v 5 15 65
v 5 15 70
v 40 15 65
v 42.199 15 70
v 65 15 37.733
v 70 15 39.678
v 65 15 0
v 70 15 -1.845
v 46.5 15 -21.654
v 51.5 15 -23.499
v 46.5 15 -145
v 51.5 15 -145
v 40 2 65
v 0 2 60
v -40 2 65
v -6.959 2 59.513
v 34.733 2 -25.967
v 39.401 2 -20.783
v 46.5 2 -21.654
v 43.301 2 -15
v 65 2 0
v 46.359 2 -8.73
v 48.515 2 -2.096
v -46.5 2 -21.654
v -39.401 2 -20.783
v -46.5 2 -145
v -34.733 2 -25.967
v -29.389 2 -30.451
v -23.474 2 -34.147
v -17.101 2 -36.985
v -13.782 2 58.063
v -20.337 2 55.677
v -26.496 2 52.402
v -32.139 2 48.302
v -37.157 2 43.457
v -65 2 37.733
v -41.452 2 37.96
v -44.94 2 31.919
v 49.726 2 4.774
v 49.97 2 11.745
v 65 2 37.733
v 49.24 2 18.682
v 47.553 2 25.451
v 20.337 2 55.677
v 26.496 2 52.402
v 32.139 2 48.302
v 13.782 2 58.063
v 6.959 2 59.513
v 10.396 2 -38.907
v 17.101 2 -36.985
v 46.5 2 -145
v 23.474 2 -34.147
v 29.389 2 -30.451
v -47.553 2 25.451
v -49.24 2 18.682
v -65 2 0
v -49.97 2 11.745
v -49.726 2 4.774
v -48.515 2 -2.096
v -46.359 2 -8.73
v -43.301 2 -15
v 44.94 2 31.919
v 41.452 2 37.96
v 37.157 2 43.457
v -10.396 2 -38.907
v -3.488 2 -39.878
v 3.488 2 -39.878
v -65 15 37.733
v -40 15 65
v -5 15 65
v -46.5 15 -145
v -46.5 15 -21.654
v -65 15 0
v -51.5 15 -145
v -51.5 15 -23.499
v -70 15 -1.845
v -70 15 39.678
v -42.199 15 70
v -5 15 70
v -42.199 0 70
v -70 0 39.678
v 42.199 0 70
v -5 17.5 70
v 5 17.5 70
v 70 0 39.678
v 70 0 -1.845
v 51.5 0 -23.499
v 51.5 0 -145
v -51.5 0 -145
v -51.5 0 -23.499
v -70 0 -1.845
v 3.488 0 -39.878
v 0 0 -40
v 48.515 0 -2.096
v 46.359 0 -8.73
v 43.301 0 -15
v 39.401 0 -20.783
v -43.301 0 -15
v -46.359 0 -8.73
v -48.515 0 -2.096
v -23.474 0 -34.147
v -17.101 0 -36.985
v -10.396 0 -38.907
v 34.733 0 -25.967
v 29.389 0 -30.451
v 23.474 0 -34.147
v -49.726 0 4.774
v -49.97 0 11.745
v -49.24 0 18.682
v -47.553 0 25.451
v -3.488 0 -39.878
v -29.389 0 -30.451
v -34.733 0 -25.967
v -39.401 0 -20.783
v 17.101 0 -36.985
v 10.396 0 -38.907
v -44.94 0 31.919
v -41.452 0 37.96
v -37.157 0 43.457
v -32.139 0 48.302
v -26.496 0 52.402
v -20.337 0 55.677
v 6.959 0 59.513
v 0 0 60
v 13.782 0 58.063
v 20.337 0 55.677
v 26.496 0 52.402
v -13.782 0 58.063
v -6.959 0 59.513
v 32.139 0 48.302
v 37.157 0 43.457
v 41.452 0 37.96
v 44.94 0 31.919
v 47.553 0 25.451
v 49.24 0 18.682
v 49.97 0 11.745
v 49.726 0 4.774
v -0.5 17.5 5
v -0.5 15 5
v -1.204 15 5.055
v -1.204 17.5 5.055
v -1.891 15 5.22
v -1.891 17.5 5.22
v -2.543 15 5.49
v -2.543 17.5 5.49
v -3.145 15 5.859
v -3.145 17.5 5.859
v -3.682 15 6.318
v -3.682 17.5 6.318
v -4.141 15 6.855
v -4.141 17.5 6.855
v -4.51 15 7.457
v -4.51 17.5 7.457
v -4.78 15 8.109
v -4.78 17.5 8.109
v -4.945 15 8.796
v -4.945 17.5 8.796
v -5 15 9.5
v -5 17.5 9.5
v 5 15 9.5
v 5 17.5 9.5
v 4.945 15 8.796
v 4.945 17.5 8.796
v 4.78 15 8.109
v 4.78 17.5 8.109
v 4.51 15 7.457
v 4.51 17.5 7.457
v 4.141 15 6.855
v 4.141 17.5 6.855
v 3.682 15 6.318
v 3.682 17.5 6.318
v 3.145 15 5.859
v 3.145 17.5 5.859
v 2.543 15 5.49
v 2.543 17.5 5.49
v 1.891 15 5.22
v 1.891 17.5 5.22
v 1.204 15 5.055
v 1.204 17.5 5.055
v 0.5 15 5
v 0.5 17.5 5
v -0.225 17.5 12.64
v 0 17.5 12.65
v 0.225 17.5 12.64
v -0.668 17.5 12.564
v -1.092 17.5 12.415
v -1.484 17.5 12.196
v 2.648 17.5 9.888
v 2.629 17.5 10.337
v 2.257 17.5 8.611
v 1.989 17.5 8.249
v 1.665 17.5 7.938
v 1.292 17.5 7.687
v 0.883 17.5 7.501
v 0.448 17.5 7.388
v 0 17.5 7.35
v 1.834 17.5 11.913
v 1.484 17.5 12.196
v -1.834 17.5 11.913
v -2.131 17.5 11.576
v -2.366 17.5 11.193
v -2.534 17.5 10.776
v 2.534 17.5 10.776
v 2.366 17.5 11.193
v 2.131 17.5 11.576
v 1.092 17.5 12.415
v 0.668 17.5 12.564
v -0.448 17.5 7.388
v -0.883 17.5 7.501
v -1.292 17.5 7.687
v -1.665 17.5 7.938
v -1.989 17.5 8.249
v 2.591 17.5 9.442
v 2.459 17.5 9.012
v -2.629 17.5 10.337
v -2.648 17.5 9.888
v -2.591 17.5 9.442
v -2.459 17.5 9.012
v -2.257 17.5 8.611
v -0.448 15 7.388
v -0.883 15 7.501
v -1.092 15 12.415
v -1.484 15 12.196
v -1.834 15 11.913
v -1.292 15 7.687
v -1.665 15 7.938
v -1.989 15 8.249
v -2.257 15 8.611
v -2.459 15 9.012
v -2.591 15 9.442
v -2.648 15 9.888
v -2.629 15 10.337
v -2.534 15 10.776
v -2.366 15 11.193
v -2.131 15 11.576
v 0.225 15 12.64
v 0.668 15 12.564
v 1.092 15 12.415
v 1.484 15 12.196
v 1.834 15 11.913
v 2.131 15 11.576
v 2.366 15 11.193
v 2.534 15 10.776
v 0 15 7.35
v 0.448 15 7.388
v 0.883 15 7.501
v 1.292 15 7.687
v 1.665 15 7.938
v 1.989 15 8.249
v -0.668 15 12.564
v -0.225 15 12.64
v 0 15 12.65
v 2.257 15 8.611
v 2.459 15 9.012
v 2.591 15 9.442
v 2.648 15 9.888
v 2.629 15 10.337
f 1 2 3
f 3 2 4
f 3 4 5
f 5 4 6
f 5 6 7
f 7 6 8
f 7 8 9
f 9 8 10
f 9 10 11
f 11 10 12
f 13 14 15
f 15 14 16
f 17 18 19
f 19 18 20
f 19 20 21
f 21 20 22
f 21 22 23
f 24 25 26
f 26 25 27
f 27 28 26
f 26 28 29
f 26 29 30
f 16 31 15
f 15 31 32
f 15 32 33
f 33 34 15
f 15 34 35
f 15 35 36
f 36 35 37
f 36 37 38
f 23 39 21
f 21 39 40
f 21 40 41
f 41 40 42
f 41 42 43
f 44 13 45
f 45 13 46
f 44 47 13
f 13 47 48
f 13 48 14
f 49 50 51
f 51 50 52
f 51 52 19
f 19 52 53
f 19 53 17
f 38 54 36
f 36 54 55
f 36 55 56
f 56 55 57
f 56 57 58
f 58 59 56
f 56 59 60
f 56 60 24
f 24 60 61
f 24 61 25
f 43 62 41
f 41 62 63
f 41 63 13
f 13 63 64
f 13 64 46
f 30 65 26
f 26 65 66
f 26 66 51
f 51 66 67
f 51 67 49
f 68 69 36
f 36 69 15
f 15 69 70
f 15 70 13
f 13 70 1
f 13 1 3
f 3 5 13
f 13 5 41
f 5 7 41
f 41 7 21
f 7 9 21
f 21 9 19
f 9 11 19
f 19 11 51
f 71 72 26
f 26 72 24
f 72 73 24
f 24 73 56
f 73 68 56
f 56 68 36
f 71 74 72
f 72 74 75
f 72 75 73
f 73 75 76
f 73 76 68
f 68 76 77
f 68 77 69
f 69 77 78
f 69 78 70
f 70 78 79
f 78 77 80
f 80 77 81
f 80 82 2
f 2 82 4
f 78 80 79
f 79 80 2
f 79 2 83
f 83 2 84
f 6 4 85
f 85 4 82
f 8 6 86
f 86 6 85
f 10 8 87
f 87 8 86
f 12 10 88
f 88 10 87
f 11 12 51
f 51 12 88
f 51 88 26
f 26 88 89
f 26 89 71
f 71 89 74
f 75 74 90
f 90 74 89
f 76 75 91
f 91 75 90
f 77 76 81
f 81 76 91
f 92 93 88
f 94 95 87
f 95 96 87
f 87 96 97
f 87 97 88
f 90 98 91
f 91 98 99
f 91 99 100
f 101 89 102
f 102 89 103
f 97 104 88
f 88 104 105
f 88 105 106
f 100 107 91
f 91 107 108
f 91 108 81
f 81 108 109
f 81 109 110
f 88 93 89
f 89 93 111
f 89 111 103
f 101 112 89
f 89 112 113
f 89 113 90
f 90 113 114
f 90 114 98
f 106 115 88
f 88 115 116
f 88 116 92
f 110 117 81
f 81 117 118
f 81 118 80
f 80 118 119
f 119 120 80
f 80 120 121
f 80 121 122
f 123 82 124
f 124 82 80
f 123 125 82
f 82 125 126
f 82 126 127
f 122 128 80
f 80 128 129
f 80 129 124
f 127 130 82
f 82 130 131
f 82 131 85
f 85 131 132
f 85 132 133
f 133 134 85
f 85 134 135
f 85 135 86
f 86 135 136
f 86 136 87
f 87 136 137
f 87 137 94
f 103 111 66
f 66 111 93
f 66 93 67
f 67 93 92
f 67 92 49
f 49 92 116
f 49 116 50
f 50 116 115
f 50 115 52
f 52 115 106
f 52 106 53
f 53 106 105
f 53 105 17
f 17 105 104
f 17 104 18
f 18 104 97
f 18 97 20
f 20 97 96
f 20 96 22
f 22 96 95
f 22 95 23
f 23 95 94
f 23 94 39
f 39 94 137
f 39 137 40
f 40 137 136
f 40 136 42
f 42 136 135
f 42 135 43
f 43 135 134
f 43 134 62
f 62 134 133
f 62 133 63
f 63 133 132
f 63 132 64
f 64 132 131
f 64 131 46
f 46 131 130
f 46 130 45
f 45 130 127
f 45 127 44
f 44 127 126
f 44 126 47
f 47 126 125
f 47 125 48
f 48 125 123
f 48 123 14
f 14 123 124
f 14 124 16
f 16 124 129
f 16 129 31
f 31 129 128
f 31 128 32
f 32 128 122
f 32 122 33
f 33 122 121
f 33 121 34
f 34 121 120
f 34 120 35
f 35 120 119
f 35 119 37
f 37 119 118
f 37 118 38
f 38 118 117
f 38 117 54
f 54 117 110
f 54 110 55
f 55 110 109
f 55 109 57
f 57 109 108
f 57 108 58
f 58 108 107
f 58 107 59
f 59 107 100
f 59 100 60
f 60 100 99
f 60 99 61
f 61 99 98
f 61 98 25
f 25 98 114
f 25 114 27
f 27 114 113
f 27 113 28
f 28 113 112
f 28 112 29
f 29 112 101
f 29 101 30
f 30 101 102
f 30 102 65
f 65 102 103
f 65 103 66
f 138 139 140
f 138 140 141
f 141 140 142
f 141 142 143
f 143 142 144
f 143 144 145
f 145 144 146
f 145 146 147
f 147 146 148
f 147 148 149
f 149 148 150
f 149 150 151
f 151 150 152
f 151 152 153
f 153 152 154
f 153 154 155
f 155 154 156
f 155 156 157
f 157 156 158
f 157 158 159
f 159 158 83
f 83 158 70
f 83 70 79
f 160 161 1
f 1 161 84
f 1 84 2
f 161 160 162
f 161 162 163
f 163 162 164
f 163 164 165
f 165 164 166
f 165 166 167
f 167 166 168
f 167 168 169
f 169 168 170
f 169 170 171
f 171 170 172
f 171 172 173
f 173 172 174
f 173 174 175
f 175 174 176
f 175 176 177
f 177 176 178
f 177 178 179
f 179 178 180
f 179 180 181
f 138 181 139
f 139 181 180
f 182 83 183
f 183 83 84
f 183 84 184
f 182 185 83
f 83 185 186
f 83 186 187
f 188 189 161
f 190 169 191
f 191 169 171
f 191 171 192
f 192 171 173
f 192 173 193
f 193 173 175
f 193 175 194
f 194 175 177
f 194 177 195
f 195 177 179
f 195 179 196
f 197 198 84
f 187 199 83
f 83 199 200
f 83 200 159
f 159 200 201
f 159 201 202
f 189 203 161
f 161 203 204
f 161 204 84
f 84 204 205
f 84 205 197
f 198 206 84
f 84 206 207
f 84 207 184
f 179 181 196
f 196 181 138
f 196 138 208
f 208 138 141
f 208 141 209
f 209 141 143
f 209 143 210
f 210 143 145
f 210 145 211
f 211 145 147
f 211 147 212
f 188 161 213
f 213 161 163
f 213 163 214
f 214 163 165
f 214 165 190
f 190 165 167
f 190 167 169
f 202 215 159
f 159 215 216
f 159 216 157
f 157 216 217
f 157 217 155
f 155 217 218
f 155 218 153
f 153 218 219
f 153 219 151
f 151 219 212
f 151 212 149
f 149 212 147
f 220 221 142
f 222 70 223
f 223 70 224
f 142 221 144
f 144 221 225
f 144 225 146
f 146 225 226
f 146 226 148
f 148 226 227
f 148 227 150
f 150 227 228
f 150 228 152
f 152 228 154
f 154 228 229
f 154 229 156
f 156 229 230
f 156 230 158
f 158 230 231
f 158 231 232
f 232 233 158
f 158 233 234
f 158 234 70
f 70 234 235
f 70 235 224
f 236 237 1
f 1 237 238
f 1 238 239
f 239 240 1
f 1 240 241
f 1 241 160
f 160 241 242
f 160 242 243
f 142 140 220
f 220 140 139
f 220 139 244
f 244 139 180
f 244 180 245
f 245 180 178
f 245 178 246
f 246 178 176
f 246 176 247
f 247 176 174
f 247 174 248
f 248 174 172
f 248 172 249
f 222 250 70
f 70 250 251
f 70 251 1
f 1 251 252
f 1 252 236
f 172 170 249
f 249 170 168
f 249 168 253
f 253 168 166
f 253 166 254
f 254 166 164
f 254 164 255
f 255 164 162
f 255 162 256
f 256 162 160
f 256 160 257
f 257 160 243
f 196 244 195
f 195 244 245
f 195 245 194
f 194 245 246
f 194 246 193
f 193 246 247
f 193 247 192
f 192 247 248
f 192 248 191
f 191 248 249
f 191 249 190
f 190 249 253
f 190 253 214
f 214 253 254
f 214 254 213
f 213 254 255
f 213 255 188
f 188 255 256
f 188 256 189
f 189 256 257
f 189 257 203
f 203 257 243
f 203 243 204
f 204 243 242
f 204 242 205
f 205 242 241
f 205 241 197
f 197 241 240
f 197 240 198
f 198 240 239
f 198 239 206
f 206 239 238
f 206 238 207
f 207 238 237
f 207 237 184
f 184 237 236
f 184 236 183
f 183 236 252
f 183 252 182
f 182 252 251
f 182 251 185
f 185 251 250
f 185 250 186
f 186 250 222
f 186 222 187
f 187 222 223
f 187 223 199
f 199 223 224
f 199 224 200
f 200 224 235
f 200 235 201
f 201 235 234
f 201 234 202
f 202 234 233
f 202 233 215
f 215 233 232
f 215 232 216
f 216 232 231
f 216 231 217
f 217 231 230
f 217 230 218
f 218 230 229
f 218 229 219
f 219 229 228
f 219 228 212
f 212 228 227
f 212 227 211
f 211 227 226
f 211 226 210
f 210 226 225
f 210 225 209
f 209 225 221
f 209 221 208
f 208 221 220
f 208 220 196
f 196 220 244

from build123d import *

# Parameters (mm, degrees)
BOSS_EXTRUDE1_DEPTH = 2
EXTRUDE_THIN3_DEPTH = 15
SKETCH3_W           = 93
SKETCH3_H           = 13
CUT_EXTRUDE1_DEPTH  = 5
SKETCH5_R           = 50
CUT_EXTRUDE2_DEPTH  = 2
BOSS_EXTRUDE2_DEPTH = 2.5
SKETCH4_3_R         = 2.65
CUT_EXTRUDE3_DEPTH  = 2.5


with BuildPart() as part:
    # Sketch1 → Boss-Extrude1 (new body)
    with BuildSketch(Plane(origin=(0, 0, 0), x_dir=(1, 0, 0), z_dir=(0, 1, 0))):
        Polygon((-46.5, 140), (46.5, 140), (46.5, 21.653994317), (65, 0), (65, -37.732612768), (40, -65), (-40, -65), (-65, -37.732612768), (-65, 0), (-46.5, 21.653994317), align=None)
    extrude(amount=BOSS_EXTRUDE1_DEPTH)

    # Sketch1<6> → Extrude-Thin3 (add)
    with BuildSketch(Plane(origin=(0, 0, 0), x_dir=(1, 0, 0), z_dir=(0, 1, 0))):
        Polygon((-51.5, 145), (51.5, 145), (51.5, 23.49902712), (70, 1.845032803), (70, -39.677811978), (42.199217545, -70), (-42.199217545, -70), (-70, -39.677811978), (-70, 1.845032803), (-51.5, 23.49902712), align=None)
        Polygon((-46.5, 140), (46.5, 140), (46.5, 21.653994317), (65, 0), (65, -37.732612768), (40, -65), (-40, -65), (-65, -37.732612768), (-65, 0), (-46.5, 21.653994317), align=None, mode=Mode.SUBTRACT)
    extrude(amount=EXTRUDE_THIN3_DEPTH)

    # Sketch3 → Cut-Extrude1 (cut)
    with BuildSketch(Plane.XY.offset(-140)):
        with Locations((0, 8.5)):
            Rectangle(SKETCH3_W, SKETCH3_H)
    extrude(amount=-CUT_EXTRUDE1_DEPTH, mode=Mode.SUBTRACT)

    # Sketch5 → Cut-Extrude2 (cut)
    with BuildSketch(Plane(origin=(0, 2, 0), x_dir=(1, 0, 0), z_dir=(0, 1, 0))):
        with Locations(Location((0, -10, 0), (0, 0, 270))):
            Circle(SKETCH5_R)
    extrude(amount=-CUT_EXTRUDE2_DEPTH, mode=Mode.SUBTRACT)

    # Sketch4 → Boss-Extrude2 (add)
    with BuildSketch(Plane(origin=(0, 15, 0), x_dir=(1, 0, 0), z_dir=(0, 1, 0))):
        with BuildLine():
            Line((-0.5, -5), (0.5, -5))
            ThreePointArc((0.5, -5), (3.681980515, -6.318019485), (5, -9.5))
            Line((5, -9.5), (5, -70))
            Line((5, -70), (-5, -70))
            Line((-5, -70), (-5, -9.5))
            ThreePointArc((-5, -9.5), (-3.681980515, -6.318019485), (-0.5, -5))
        make_face()
    extrude(amount=BOSS_EXTRUDE2_DEPTH)

    # Sketch4<3> → Cut-Extrude3 (cut)
    with BuildSketch(Plane(origin=(0, 15, 0), x_dir=(1, 0, 0), z_dir=(0, 1, 0))):
        with Locations(Location((0, -10, 0), (0, 0, 270))):
            Circle(SKETCH4_3_R)
    extrude(amount=CUT_EXTRUDE3_DEPTH, mode=Mode.SUBTRACT)


solid = part.part
